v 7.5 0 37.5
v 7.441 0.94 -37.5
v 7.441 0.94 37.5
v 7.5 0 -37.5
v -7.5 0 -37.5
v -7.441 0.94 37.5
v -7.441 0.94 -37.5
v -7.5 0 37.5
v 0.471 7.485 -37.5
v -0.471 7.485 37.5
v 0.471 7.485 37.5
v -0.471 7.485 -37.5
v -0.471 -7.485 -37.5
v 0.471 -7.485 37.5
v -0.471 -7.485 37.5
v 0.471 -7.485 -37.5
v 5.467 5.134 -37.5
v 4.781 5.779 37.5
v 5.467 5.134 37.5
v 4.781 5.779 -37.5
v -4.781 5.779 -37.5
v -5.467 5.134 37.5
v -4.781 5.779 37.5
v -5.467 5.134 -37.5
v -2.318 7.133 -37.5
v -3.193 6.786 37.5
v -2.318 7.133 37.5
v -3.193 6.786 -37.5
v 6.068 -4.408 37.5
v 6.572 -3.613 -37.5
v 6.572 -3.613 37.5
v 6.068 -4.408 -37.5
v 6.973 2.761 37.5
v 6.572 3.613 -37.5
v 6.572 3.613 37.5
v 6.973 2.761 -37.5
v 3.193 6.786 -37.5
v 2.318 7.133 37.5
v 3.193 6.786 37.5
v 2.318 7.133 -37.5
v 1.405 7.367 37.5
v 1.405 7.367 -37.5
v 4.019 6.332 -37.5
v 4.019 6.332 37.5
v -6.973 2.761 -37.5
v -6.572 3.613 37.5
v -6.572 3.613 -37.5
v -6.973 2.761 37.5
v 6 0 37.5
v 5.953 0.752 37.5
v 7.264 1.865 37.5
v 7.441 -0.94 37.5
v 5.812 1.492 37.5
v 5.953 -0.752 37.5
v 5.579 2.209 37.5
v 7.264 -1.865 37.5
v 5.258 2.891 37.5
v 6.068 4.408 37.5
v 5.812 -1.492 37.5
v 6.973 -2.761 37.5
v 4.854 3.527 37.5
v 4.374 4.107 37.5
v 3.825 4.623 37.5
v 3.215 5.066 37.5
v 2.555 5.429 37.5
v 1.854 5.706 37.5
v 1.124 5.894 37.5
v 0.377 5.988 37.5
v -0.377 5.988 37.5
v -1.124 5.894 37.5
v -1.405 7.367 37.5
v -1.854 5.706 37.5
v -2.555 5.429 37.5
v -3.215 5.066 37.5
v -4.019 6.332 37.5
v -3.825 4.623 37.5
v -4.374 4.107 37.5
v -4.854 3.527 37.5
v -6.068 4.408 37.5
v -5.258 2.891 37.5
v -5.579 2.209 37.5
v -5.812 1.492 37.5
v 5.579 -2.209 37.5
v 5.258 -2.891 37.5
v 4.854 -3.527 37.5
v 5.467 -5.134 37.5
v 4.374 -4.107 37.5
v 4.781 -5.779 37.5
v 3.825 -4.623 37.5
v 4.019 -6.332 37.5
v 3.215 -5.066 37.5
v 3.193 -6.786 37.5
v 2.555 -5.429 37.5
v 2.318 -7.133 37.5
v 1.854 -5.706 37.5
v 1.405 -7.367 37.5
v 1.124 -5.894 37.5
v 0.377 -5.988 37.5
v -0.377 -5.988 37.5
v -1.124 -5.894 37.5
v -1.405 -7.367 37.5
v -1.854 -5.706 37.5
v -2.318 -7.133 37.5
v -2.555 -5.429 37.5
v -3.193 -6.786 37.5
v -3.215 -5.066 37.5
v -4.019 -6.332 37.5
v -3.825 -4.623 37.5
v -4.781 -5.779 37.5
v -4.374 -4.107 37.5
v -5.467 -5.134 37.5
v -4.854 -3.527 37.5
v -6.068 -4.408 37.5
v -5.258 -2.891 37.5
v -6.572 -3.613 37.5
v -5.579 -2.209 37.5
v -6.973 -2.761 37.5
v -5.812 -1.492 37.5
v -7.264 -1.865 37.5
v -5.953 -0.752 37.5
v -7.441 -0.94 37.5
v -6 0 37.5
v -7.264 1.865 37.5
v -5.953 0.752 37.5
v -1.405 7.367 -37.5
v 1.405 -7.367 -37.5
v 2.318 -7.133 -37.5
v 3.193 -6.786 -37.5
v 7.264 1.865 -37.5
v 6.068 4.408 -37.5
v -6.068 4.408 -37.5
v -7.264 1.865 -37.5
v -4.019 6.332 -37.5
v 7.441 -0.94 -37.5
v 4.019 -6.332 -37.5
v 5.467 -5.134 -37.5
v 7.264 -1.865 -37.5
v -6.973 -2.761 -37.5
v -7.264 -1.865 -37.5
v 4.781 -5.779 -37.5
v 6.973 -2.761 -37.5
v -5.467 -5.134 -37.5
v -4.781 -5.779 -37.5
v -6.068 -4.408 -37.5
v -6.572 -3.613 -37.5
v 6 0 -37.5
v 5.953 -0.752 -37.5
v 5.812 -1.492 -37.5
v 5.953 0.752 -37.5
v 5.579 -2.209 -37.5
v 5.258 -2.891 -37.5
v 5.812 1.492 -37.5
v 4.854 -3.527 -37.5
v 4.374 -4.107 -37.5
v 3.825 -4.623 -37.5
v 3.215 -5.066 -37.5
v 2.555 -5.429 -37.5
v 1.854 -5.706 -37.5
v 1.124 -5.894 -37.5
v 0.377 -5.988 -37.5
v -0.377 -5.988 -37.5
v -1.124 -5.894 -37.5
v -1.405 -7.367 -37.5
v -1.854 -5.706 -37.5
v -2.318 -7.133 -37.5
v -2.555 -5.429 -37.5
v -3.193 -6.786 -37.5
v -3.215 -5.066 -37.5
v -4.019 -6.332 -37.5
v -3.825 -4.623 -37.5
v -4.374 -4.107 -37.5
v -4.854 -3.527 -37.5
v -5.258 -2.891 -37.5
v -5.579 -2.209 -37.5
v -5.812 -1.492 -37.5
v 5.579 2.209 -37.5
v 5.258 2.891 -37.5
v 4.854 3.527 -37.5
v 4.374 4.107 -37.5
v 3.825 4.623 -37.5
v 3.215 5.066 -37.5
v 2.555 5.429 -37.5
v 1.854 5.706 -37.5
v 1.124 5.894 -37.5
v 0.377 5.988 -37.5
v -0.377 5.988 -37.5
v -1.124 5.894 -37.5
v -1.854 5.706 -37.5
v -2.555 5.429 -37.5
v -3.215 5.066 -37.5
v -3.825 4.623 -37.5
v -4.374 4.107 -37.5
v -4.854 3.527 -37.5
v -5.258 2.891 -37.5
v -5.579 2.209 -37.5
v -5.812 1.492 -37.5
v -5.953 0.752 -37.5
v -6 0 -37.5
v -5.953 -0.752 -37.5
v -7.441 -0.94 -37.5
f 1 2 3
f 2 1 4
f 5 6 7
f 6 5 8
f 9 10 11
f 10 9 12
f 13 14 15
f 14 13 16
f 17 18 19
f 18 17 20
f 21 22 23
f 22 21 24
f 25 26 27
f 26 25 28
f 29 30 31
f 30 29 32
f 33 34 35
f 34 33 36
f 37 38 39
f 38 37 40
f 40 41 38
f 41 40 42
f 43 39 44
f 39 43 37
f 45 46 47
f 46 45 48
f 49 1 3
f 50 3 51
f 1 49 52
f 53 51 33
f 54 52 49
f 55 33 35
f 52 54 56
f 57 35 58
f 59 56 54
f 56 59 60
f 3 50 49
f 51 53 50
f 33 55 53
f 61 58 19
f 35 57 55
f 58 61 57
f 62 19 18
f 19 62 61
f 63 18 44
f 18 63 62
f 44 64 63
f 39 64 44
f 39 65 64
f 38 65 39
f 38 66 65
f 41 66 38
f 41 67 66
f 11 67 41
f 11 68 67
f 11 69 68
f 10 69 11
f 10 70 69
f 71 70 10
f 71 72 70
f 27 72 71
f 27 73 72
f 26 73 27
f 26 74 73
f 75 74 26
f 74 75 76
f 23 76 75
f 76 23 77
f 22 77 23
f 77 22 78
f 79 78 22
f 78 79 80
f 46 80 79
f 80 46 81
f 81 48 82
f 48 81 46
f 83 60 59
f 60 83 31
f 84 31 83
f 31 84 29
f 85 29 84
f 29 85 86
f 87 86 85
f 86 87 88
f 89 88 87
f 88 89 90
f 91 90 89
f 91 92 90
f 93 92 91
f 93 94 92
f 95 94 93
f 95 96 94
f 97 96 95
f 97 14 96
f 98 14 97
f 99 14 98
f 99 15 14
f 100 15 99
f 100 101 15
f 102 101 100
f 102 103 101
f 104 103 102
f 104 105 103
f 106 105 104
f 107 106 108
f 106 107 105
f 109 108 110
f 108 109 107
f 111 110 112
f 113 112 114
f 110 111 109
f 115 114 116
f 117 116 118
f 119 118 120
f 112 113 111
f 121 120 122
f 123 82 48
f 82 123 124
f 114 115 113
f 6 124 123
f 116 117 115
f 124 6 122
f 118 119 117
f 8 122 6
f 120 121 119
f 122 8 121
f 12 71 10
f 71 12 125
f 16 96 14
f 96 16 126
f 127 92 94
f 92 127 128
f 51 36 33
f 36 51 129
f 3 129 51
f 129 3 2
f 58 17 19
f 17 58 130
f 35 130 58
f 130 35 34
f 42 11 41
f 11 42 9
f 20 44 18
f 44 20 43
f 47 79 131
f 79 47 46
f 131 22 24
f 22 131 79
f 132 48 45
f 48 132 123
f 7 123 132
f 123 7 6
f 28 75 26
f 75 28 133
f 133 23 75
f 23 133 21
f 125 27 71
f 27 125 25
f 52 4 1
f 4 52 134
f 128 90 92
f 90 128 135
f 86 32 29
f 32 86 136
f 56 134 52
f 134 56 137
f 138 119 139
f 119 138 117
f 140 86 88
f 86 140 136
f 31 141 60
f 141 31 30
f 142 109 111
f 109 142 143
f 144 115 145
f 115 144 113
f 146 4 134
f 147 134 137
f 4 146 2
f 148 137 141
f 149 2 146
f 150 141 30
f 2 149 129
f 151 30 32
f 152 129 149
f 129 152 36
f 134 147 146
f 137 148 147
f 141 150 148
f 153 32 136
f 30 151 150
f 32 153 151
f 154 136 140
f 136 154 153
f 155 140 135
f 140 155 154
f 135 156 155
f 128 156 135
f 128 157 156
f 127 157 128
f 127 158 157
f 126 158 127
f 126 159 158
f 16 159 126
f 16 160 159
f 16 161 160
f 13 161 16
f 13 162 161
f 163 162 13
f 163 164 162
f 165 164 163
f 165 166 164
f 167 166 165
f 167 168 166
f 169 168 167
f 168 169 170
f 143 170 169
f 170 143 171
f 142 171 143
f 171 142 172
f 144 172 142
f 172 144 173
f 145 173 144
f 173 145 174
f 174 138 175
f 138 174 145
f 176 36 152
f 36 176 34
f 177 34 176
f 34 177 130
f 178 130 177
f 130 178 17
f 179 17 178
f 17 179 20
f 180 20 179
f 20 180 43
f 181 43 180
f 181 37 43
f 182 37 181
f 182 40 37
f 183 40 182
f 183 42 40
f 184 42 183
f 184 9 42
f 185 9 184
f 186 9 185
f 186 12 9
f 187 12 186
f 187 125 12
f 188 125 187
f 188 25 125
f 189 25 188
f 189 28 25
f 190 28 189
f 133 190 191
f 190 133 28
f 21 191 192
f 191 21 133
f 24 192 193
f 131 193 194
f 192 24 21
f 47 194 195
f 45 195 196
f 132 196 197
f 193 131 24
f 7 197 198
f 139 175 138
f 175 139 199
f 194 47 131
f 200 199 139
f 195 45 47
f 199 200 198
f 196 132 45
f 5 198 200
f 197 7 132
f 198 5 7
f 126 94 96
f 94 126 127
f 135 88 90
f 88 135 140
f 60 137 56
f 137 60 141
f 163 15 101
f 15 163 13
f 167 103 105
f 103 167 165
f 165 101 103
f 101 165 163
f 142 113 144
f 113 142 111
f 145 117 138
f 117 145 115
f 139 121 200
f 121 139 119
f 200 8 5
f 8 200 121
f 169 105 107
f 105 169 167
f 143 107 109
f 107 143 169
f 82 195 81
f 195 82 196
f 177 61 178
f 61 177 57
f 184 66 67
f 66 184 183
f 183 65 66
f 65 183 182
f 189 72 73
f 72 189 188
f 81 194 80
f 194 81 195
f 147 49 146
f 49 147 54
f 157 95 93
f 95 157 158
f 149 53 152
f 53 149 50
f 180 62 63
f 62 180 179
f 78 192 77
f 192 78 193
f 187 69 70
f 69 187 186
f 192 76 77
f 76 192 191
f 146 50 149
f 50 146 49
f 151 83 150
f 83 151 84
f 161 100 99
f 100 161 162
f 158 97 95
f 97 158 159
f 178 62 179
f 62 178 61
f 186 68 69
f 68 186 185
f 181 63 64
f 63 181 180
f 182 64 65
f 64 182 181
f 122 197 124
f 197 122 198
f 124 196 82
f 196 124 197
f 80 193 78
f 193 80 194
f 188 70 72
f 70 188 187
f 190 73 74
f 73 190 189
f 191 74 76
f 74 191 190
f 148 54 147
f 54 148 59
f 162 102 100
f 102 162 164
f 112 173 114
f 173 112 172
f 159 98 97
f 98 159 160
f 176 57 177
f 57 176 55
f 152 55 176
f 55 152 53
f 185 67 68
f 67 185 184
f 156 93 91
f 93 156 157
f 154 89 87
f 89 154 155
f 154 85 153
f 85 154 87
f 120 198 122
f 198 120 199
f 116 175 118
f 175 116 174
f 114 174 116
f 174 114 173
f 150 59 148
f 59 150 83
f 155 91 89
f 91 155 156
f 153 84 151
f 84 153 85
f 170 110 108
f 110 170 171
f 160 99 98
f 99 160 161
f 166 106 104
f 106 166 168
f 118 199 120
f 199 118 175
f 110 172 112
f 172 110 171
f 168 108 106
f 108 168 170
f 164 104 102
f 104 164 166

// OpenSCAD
$fn = 50;


difference() {
	union() {
		translate(v = [0, 0, -37.5000000000]) {
			cylinder(h = 75, r = 7.5000000000);
		}
	}
	union() {
		translate(v = [0, 0, -100.0000000000]) {
			cylinder(h = 200, r = 6);
		}
	}
}
